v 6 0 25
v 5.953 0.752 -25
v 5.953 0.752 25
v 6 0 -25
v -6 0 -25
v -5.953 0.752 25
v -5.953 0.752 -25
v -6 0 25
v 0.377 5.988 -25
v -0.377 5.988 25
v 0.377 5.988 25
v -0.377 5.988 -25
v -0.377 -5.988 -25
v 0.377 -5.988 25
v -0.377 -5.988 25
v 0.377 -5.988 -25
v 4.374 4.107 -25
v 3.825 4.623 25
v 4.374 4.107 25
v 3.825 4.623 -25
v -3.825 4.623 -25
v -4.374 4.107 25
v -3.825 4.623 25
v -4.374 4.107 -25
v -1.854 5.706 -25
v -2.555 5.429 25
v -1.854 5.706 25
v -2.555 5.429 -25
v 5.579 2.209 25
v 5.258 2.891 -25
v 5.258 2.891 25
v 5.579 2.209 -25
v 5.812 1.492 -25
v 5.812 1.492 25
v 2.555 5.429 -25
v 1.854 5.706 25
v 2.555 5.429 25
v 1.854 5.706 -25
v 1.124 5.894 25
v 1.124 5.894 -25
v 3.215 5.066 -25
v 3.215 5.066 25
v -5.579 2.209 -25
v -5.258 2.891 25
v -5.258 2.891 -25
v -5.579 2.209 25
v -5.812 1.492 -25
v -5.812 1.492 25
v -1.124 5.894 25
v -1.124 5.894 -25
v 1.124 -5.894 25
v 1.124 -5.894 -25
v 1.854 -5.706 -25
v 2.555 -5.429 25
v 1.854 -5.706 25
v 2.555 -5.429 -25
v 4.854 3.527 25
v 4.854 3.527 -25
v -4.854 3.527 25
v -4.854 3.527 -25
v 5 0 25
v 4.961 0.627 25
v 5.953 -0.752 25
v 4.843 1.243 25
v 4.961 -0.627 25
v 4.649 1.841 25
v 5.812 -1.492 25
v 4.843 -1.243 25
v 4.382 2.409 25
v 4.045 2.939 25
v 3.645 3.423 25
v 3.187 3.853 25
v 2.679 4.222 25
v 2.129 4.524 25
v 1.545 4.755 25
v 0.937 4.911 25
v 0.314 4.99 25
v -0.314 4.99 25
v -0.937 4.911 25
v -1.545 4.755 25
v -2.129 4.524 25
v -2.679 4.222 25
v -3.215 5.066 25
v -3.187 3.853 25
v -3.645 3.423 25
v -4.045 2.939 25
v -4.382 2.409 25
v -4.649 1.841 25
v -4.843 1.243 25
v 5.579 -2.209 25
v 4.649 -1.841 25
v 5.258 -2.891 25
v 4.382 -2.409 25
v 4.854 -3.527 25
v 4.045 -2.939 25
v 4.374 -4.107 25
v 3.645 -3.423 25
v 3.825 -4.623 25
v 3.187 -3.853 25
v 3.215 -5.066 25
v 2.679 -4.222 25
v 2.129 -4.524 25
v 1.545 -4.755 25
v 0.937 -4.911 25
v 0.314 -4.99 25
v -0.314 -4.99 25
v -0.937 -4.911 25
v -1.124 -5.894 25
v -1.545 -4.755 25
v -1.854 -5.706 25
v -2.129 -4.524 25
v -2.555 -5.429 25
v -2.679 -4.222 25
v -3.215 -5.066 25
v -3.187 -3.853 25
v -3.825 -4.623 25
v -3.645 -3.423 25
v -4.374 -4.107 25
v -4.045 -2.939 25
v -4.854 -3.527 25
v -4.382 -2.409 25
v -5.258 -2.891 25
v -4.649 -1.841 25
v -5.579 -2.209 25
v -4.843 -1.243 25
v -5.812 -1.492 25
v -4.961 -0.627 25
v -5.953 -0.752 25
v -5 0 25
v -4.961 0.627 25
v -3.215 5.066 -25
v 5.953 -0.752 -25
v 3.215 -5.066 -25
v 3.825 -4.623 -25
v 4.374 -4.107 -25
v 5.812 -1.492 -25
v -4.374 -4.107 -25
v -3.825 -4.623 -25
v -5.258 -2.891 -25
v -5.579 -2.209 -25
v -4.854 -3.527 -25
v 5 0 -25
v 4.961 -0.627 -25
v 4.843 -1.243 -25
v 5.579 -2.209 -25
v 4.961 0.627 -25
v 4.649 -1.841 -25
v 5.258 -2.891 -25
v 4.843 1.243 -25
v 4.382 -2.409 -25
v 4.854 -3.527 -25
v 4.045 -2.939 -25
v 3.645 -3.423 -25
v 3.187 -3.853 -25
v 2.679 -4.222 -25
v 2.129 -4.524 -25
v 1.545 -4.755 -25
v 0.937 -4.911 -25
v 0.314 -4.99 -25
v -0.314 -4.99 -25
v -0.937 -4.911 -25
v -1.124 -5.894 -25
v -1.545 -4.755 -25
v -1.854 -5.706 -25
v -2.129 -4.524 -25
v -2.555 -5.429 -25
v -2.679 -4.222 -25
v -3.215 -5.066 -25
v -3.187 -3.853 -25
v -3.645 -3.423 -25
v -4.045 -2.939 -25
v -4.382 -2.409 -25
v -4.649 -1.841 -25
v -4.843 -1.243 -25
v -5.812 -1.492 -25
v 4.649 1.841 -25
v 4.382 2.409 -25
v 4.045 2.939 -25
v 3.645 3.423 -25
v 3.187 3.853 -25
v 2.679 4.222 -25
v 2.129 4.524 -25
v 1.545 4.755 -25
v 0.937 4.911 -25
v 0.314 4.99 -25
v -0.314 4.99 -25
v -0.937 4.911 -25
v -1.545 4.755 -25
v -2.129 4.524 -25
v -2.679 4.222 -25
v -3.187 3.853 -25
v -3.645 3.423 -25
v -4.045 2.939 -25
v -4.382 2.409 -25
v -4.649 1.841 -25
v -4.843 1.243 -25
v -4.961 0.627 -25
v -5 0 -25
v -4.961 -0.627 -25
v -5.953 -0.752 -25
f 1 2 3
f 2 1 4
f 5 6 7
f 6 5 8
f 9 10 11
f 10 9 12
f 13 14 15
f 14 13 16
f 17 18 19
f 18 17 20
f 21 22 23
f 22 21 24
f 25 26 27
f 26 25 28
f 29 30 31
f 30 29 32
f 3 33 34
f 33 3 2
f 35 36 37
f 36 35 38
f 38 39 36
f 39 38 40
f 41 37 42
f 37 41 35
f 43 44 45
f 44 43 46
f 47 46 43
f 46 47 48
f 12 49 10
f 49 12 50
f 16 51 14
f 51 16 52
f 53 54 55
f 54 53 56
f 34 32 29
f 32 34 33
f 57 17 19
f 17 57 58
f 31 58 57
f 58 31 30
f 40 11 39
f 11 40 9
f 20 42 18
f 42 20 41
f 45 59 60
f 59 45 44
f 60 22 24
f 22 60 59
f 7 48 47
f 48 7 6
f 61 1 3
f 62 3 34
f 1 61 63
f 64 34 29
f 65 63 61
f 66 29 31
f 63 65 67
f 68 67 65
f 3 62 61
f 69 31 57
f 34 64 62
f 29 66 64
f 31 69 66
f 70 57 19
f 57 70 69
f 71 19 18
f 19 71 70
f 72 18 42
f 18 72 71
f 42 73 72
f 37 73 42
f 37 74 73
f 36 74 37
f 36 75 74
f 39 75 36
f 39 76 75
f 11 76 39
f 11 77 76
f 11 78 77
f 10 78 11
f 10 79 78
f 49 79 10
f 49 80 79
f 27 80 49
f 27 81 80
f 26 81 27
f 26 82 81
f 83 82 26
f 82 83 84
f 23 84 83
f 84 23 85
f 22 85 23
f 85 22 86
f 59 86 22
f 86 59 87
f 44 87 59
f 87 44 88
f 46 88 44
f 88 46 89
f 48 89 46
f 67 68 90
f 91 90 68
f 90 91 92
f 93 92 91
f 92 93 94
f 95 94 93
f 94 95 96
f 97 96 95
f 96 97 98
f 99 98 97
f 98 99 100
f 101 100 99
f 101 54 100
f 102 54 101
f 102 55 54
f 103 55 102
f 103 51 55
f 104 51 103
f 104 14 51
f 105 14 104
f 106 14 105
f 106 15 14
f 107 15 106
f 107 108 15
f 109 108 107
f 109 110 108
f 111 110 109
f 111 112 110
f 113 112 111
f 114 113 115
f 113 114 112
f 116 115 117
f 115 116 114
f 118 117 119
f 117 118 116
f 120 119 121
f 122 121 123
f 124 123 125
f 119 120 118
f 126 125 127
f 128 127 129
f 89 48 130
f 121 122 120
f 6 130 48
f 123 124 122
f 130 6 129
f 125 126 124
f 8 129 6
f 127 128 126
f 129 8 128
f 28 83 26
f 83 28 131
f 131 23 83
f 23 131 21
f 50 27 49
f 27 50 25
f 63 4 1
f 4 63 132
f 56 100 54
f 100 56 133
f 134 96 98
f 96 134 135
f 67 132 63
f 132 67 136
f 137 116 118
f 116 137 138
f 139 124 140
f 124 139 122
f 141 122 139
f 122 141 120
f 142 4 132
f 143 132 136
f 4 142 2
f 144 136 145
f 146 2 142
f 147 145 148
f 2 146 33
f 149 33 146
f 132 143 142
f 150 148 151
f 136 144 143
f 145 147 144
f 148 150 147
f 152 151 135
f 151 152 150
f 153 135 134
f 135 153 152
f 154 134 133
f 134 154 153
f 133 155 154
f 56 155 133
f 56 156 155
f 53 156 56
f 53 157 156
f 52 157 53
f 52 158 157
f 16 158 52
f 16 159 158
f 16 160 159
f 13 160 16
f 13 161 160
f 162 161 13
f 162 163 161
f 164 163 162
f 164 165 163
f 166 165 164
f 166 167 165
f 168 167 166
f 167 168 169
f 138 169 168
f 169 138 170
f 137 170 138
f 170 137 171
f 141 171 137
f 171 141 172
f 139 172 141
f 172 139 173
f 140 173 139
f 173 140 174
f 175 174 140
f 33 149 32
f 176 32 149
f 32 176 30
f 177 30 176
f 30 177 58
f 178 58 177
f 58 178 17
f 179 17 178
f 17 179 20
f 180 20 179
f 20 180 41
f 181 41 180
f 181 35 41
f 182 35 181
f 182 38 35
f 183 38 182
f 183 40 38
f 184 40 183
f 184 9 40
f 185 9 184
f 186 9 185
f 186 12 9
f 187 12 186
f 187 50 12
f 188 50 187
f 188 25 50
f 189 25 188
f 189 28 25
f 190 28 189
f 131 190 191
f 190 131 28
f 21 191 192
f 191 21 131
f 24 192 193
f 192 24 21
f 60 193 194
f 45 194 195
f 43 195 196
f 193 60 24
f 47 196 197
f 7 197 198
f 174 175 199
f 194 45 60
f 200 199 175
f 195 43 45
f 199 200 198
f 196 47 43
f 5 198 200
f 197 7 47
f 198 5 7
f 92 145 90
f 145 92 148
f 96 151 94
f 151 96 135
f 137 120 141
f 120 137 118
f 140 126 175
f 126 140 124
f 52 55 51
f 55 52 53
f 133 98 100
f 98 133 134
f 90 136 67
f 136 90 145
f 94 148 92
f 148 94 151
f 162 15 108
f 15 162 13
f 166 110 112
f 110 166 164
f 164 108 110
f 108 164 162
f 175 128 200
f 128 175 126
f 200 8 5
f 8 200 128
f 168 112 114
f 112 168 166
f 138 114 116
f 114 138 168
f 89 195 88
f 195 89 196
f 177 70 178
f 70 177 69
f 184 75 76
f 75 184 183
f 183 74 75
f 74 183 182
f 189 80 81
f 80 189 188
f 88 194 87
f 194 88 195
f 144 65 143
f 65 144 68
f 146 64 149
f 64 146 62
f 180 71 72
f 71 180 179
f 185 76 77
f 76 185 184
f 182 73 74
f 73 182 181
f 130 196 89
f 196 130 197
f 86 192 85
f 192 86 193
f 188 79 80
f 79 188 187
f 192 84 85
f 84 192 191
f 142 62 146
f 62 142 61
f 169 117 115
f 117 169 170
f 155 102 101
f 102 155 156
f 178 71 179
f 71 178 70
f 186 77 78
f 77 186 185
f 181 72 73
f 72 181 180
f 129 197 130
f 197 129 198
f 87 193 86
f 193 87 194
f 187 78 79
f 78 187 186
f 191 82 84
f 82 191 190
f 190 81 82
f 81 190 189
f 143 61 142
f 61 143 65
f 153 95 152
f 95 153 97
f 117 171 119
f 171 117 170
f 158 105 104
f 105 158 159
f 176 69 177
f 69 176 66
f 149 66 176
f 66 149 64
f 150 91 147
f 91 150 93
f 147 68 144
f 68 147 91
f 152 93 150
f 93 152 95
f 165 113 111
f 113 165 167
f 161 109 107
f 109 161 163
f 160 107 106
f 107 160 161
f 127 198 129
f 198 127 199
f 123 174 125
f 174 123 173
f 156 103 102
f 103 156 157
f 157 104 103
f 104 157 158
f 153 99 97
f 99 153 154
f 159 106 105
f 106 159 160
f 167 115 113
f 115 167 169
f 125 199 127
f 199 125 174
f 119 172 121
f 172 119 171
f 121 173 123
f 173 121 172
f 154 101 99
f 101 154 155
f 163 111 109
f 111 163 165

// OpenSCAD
$fn = 50;


difference() {
	union() {
		translate(v = [0, 0, -25.0000000000]) {
			cylinder(h = 50, r = 6.0000000000);
		}
	}
	union() {
		translate(v = [0, 0, -100.0000000000]) {
			cylinder(h = 200, r = 5);
		}
	}
}
